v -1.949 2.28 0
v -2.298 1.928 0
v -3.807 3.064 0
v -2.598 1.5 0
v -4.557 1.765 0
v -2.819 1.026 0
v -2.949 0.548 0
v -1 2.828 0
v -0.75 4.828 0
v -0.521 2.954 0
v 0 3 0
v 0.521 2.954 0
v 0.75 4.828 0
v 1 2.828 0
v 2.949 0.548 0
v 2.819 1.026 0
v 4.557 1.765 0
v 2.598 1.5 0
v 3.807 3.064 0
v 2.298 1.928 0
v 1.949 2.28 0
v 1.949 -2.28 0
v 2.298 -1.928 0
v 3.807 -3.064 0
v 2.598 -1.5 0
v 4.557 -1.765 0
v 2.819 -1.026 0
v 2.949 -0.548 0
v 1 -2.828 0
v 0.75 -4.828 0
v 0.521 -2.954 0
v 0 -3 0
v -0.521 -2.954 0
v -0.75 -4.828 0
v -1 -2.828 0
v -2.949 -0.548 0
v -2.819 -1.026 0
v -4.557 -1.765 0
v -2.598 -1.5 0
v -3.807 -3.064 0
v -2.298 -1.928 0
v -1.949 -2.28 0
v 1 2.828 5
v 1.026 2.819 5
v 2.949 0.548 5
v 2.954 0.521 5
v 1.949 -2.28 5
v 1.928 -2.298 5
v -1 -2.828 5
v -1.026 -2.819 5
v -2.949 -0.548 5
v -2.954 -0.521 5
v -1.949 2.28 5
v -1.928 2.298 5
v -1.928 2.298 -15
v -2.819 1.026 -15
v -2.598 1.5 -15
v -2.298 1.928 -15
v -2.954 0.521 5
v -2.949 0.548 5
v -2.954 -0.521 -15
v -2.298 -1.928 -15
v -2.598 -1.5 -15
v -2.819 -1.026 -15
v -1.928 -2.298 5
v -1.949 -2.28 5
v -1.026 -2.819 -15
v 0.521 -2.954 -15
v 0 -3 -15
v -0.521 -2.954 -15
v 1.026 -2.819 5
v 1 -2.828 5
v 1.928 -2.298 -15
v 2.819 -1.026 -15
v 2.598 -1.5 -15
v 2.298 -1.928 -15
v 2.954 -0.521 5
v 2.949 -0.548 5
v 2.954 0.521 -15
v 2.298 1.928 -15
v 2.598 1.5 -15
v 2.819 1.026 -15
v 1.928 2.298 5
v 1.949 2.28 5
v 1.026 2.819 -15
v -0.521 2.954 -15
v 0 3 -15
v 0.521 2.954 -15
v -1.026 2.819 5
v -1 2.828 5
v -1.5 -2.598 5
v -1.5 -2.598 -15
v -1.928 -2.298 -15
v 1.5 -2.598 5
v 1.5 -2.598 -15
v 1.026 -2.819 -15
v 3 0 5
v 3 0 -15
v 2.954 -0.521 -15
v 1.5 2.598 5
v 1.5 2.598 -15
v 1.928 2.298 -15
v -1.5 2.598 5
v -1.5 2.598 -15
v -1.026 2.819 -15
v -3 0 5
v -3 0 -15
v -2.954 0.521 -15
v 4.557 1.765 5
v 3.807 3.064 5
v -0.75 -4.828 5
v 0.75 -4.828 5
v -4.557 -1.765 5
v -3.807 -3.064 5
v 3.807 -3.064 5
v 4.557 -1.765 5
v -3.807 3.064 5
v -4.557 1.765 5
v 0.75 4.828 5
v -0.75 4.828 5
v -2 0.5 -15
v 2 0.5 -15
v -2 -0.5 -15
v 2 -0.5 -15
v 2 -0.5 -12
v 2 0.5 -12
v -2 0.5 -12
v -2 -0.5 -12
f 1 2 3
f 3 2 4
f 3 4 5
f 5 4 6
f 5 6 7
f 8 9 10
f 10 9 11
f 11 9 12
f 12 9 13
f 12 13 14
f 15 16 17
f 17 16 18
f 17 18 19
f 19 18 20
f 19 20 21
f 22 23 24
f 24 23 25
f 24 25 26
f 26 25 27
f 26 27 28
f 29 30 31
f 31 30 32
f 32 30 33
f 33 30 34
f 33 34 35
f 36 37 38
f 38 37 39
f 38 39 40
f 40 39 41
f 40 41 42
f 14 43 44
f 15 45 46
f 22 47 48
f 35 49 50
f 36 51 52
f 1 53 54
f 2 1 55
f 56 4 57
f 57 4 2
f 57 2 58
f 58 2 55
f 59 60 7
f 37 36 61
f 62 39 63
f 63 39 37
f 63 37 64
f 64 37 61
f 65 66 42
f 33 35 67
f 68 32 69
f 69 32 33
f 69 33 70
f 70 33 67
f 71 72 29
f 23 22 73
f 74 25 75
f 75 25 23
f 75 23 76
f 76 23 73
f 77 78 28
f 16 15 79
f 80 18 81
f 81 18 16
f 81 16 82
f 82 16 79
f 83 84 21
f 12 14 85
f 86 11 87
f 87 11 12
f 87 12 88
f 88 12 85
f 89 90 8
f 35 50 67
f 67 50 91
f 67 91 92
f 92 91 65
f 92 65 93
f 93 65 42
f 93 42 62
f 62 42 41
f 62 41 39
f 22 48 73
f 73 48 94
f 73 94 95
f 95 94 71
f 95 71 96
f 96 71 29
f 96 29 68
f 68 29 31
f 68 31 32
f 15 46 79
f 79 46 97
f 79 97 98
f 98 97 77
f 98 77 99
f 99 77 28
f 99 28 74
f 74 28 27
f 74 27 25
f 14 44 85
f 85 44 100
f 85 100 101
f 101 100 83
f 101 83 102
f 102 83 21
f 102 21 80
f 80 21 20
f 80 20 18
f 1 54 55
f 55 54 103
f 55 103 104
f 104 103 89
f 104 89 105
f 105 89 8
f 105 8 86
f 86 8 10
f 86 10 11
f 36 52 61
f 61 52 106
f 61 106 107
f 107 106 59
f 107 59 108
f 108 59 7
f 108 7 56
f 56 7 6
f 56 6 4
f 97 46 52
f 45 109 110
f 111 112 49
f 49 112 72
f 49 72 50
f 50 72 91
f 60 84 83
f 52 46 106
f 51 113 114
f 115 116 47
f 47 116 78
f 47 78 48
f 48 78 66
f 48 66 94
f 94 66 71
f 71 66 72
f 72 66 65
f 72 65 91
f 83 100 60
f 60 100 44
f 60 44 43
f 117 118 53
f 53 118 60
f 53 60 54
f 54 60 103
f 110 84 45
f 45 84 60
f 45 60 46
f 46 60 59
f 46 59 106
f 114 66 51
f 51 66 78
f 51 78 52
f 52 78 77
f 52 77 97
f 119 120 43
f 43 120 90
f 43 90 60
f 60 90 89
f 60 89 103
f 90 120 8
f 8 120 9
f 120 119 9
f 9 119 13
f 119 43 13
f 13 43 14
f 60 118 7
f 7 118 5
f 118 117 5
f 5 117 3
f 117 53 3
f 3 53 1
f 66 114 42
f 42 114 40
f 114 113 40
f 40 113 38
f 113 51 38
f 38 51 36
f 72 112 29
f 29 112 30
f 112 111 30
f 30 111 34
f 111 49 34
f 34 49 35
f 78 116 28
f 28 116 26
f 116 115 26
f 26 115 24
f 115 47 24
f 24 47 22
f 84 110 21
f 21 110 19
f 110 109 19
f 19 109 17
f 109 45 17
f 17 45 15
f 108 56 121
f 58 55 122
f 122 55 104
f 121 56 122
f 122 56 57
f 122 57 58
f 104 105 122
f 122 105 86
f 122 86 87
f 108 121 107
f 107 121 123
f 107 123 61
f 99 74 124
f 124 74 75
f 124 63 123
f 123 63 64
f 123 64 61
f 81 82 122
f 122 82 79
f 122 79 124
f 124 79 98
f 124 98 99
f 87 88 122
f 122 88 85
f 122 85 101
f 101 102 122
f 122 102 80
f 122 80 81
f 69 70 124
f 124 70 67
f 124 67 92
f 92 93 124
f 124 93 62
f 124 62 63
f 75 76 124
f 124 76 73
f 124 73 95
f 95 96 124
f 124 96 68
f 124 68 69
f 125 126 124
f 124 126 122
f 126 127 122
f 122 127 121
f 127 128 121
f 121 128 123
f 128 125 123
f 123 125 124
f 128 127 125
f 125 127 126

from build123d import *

# Parameters (mm, degrees)
ESQUISSE1_R                  = 3
MAIN_EXTRUSION_DEPTH         = 5
GEAR_ELEMENT_DEPTH           = 5
R_P_TITION_CIRCULAIRE1_COUNT = 6
ESQUISSE3_R                  = 3
MAIN_AXE_DEPTH               = 15
ESQUISSE4_W                  = 4
ESQUISSE4_H                  = 1
AXE_TRAIT_DEPTH              = 3


with BuildPart() as part:
    # Esquisse1 → Main Extrusion (new body)
    with BuildSketch(Plane.XY):
        Circle(ESQUISSE1_R)
    extrude(amount=MAIN_EXTRUSION_DEPTH)

    # Esquisse2 → Gear Element (add)
    with BuildSketch(Plane.XY.offset(5)):
        Polygon((-1, 2.828427125), (1, 2.828427125), (0.75, 4.828427125), (-0.75, 4.828427125), align=None)
    gear_element = extrude(amount=-GEAR_ELEMENT_DEPTH)

    # Répétition circulaire1: Gear Element ×6 about axis
    r_p_tition_circulaire1_axis = Axis((0, 0, 0), (0, 0, 1))
    for i in range(1, R_P_TITION_CIRCULAIRE1_COUNT):
        add(gear_element.rotate(r_p_tition_circulaire1_axis, i * 360 / R_P_TITION_CIRCULAIRE1_COUNT))

    # Esquisse3 → Main Axe (add)
    with BuildSketch(Plane(origin=(0, 0, 0), x_dir=(-1, 0, 0), z_dir=(0, 0, -1))):
        Circle(ESQUISSE3_R)
    extrude(amount=MAIN_AXE_DEPTH)

    # Esquisse4 → Axe Trait (cut)
    with BuildSketch(Plane(origin=(0, 0, -15), x_dir=(-1, 0, 0), z_dir=(0, 0, -1))):
        Rectangle(ESQUISSE4_W, ESQUISSE4_H)
    extrude(amount=-AXE_TRAIT_DEPTH, mode=Mode.SUBTRACT)


solid = part.part
